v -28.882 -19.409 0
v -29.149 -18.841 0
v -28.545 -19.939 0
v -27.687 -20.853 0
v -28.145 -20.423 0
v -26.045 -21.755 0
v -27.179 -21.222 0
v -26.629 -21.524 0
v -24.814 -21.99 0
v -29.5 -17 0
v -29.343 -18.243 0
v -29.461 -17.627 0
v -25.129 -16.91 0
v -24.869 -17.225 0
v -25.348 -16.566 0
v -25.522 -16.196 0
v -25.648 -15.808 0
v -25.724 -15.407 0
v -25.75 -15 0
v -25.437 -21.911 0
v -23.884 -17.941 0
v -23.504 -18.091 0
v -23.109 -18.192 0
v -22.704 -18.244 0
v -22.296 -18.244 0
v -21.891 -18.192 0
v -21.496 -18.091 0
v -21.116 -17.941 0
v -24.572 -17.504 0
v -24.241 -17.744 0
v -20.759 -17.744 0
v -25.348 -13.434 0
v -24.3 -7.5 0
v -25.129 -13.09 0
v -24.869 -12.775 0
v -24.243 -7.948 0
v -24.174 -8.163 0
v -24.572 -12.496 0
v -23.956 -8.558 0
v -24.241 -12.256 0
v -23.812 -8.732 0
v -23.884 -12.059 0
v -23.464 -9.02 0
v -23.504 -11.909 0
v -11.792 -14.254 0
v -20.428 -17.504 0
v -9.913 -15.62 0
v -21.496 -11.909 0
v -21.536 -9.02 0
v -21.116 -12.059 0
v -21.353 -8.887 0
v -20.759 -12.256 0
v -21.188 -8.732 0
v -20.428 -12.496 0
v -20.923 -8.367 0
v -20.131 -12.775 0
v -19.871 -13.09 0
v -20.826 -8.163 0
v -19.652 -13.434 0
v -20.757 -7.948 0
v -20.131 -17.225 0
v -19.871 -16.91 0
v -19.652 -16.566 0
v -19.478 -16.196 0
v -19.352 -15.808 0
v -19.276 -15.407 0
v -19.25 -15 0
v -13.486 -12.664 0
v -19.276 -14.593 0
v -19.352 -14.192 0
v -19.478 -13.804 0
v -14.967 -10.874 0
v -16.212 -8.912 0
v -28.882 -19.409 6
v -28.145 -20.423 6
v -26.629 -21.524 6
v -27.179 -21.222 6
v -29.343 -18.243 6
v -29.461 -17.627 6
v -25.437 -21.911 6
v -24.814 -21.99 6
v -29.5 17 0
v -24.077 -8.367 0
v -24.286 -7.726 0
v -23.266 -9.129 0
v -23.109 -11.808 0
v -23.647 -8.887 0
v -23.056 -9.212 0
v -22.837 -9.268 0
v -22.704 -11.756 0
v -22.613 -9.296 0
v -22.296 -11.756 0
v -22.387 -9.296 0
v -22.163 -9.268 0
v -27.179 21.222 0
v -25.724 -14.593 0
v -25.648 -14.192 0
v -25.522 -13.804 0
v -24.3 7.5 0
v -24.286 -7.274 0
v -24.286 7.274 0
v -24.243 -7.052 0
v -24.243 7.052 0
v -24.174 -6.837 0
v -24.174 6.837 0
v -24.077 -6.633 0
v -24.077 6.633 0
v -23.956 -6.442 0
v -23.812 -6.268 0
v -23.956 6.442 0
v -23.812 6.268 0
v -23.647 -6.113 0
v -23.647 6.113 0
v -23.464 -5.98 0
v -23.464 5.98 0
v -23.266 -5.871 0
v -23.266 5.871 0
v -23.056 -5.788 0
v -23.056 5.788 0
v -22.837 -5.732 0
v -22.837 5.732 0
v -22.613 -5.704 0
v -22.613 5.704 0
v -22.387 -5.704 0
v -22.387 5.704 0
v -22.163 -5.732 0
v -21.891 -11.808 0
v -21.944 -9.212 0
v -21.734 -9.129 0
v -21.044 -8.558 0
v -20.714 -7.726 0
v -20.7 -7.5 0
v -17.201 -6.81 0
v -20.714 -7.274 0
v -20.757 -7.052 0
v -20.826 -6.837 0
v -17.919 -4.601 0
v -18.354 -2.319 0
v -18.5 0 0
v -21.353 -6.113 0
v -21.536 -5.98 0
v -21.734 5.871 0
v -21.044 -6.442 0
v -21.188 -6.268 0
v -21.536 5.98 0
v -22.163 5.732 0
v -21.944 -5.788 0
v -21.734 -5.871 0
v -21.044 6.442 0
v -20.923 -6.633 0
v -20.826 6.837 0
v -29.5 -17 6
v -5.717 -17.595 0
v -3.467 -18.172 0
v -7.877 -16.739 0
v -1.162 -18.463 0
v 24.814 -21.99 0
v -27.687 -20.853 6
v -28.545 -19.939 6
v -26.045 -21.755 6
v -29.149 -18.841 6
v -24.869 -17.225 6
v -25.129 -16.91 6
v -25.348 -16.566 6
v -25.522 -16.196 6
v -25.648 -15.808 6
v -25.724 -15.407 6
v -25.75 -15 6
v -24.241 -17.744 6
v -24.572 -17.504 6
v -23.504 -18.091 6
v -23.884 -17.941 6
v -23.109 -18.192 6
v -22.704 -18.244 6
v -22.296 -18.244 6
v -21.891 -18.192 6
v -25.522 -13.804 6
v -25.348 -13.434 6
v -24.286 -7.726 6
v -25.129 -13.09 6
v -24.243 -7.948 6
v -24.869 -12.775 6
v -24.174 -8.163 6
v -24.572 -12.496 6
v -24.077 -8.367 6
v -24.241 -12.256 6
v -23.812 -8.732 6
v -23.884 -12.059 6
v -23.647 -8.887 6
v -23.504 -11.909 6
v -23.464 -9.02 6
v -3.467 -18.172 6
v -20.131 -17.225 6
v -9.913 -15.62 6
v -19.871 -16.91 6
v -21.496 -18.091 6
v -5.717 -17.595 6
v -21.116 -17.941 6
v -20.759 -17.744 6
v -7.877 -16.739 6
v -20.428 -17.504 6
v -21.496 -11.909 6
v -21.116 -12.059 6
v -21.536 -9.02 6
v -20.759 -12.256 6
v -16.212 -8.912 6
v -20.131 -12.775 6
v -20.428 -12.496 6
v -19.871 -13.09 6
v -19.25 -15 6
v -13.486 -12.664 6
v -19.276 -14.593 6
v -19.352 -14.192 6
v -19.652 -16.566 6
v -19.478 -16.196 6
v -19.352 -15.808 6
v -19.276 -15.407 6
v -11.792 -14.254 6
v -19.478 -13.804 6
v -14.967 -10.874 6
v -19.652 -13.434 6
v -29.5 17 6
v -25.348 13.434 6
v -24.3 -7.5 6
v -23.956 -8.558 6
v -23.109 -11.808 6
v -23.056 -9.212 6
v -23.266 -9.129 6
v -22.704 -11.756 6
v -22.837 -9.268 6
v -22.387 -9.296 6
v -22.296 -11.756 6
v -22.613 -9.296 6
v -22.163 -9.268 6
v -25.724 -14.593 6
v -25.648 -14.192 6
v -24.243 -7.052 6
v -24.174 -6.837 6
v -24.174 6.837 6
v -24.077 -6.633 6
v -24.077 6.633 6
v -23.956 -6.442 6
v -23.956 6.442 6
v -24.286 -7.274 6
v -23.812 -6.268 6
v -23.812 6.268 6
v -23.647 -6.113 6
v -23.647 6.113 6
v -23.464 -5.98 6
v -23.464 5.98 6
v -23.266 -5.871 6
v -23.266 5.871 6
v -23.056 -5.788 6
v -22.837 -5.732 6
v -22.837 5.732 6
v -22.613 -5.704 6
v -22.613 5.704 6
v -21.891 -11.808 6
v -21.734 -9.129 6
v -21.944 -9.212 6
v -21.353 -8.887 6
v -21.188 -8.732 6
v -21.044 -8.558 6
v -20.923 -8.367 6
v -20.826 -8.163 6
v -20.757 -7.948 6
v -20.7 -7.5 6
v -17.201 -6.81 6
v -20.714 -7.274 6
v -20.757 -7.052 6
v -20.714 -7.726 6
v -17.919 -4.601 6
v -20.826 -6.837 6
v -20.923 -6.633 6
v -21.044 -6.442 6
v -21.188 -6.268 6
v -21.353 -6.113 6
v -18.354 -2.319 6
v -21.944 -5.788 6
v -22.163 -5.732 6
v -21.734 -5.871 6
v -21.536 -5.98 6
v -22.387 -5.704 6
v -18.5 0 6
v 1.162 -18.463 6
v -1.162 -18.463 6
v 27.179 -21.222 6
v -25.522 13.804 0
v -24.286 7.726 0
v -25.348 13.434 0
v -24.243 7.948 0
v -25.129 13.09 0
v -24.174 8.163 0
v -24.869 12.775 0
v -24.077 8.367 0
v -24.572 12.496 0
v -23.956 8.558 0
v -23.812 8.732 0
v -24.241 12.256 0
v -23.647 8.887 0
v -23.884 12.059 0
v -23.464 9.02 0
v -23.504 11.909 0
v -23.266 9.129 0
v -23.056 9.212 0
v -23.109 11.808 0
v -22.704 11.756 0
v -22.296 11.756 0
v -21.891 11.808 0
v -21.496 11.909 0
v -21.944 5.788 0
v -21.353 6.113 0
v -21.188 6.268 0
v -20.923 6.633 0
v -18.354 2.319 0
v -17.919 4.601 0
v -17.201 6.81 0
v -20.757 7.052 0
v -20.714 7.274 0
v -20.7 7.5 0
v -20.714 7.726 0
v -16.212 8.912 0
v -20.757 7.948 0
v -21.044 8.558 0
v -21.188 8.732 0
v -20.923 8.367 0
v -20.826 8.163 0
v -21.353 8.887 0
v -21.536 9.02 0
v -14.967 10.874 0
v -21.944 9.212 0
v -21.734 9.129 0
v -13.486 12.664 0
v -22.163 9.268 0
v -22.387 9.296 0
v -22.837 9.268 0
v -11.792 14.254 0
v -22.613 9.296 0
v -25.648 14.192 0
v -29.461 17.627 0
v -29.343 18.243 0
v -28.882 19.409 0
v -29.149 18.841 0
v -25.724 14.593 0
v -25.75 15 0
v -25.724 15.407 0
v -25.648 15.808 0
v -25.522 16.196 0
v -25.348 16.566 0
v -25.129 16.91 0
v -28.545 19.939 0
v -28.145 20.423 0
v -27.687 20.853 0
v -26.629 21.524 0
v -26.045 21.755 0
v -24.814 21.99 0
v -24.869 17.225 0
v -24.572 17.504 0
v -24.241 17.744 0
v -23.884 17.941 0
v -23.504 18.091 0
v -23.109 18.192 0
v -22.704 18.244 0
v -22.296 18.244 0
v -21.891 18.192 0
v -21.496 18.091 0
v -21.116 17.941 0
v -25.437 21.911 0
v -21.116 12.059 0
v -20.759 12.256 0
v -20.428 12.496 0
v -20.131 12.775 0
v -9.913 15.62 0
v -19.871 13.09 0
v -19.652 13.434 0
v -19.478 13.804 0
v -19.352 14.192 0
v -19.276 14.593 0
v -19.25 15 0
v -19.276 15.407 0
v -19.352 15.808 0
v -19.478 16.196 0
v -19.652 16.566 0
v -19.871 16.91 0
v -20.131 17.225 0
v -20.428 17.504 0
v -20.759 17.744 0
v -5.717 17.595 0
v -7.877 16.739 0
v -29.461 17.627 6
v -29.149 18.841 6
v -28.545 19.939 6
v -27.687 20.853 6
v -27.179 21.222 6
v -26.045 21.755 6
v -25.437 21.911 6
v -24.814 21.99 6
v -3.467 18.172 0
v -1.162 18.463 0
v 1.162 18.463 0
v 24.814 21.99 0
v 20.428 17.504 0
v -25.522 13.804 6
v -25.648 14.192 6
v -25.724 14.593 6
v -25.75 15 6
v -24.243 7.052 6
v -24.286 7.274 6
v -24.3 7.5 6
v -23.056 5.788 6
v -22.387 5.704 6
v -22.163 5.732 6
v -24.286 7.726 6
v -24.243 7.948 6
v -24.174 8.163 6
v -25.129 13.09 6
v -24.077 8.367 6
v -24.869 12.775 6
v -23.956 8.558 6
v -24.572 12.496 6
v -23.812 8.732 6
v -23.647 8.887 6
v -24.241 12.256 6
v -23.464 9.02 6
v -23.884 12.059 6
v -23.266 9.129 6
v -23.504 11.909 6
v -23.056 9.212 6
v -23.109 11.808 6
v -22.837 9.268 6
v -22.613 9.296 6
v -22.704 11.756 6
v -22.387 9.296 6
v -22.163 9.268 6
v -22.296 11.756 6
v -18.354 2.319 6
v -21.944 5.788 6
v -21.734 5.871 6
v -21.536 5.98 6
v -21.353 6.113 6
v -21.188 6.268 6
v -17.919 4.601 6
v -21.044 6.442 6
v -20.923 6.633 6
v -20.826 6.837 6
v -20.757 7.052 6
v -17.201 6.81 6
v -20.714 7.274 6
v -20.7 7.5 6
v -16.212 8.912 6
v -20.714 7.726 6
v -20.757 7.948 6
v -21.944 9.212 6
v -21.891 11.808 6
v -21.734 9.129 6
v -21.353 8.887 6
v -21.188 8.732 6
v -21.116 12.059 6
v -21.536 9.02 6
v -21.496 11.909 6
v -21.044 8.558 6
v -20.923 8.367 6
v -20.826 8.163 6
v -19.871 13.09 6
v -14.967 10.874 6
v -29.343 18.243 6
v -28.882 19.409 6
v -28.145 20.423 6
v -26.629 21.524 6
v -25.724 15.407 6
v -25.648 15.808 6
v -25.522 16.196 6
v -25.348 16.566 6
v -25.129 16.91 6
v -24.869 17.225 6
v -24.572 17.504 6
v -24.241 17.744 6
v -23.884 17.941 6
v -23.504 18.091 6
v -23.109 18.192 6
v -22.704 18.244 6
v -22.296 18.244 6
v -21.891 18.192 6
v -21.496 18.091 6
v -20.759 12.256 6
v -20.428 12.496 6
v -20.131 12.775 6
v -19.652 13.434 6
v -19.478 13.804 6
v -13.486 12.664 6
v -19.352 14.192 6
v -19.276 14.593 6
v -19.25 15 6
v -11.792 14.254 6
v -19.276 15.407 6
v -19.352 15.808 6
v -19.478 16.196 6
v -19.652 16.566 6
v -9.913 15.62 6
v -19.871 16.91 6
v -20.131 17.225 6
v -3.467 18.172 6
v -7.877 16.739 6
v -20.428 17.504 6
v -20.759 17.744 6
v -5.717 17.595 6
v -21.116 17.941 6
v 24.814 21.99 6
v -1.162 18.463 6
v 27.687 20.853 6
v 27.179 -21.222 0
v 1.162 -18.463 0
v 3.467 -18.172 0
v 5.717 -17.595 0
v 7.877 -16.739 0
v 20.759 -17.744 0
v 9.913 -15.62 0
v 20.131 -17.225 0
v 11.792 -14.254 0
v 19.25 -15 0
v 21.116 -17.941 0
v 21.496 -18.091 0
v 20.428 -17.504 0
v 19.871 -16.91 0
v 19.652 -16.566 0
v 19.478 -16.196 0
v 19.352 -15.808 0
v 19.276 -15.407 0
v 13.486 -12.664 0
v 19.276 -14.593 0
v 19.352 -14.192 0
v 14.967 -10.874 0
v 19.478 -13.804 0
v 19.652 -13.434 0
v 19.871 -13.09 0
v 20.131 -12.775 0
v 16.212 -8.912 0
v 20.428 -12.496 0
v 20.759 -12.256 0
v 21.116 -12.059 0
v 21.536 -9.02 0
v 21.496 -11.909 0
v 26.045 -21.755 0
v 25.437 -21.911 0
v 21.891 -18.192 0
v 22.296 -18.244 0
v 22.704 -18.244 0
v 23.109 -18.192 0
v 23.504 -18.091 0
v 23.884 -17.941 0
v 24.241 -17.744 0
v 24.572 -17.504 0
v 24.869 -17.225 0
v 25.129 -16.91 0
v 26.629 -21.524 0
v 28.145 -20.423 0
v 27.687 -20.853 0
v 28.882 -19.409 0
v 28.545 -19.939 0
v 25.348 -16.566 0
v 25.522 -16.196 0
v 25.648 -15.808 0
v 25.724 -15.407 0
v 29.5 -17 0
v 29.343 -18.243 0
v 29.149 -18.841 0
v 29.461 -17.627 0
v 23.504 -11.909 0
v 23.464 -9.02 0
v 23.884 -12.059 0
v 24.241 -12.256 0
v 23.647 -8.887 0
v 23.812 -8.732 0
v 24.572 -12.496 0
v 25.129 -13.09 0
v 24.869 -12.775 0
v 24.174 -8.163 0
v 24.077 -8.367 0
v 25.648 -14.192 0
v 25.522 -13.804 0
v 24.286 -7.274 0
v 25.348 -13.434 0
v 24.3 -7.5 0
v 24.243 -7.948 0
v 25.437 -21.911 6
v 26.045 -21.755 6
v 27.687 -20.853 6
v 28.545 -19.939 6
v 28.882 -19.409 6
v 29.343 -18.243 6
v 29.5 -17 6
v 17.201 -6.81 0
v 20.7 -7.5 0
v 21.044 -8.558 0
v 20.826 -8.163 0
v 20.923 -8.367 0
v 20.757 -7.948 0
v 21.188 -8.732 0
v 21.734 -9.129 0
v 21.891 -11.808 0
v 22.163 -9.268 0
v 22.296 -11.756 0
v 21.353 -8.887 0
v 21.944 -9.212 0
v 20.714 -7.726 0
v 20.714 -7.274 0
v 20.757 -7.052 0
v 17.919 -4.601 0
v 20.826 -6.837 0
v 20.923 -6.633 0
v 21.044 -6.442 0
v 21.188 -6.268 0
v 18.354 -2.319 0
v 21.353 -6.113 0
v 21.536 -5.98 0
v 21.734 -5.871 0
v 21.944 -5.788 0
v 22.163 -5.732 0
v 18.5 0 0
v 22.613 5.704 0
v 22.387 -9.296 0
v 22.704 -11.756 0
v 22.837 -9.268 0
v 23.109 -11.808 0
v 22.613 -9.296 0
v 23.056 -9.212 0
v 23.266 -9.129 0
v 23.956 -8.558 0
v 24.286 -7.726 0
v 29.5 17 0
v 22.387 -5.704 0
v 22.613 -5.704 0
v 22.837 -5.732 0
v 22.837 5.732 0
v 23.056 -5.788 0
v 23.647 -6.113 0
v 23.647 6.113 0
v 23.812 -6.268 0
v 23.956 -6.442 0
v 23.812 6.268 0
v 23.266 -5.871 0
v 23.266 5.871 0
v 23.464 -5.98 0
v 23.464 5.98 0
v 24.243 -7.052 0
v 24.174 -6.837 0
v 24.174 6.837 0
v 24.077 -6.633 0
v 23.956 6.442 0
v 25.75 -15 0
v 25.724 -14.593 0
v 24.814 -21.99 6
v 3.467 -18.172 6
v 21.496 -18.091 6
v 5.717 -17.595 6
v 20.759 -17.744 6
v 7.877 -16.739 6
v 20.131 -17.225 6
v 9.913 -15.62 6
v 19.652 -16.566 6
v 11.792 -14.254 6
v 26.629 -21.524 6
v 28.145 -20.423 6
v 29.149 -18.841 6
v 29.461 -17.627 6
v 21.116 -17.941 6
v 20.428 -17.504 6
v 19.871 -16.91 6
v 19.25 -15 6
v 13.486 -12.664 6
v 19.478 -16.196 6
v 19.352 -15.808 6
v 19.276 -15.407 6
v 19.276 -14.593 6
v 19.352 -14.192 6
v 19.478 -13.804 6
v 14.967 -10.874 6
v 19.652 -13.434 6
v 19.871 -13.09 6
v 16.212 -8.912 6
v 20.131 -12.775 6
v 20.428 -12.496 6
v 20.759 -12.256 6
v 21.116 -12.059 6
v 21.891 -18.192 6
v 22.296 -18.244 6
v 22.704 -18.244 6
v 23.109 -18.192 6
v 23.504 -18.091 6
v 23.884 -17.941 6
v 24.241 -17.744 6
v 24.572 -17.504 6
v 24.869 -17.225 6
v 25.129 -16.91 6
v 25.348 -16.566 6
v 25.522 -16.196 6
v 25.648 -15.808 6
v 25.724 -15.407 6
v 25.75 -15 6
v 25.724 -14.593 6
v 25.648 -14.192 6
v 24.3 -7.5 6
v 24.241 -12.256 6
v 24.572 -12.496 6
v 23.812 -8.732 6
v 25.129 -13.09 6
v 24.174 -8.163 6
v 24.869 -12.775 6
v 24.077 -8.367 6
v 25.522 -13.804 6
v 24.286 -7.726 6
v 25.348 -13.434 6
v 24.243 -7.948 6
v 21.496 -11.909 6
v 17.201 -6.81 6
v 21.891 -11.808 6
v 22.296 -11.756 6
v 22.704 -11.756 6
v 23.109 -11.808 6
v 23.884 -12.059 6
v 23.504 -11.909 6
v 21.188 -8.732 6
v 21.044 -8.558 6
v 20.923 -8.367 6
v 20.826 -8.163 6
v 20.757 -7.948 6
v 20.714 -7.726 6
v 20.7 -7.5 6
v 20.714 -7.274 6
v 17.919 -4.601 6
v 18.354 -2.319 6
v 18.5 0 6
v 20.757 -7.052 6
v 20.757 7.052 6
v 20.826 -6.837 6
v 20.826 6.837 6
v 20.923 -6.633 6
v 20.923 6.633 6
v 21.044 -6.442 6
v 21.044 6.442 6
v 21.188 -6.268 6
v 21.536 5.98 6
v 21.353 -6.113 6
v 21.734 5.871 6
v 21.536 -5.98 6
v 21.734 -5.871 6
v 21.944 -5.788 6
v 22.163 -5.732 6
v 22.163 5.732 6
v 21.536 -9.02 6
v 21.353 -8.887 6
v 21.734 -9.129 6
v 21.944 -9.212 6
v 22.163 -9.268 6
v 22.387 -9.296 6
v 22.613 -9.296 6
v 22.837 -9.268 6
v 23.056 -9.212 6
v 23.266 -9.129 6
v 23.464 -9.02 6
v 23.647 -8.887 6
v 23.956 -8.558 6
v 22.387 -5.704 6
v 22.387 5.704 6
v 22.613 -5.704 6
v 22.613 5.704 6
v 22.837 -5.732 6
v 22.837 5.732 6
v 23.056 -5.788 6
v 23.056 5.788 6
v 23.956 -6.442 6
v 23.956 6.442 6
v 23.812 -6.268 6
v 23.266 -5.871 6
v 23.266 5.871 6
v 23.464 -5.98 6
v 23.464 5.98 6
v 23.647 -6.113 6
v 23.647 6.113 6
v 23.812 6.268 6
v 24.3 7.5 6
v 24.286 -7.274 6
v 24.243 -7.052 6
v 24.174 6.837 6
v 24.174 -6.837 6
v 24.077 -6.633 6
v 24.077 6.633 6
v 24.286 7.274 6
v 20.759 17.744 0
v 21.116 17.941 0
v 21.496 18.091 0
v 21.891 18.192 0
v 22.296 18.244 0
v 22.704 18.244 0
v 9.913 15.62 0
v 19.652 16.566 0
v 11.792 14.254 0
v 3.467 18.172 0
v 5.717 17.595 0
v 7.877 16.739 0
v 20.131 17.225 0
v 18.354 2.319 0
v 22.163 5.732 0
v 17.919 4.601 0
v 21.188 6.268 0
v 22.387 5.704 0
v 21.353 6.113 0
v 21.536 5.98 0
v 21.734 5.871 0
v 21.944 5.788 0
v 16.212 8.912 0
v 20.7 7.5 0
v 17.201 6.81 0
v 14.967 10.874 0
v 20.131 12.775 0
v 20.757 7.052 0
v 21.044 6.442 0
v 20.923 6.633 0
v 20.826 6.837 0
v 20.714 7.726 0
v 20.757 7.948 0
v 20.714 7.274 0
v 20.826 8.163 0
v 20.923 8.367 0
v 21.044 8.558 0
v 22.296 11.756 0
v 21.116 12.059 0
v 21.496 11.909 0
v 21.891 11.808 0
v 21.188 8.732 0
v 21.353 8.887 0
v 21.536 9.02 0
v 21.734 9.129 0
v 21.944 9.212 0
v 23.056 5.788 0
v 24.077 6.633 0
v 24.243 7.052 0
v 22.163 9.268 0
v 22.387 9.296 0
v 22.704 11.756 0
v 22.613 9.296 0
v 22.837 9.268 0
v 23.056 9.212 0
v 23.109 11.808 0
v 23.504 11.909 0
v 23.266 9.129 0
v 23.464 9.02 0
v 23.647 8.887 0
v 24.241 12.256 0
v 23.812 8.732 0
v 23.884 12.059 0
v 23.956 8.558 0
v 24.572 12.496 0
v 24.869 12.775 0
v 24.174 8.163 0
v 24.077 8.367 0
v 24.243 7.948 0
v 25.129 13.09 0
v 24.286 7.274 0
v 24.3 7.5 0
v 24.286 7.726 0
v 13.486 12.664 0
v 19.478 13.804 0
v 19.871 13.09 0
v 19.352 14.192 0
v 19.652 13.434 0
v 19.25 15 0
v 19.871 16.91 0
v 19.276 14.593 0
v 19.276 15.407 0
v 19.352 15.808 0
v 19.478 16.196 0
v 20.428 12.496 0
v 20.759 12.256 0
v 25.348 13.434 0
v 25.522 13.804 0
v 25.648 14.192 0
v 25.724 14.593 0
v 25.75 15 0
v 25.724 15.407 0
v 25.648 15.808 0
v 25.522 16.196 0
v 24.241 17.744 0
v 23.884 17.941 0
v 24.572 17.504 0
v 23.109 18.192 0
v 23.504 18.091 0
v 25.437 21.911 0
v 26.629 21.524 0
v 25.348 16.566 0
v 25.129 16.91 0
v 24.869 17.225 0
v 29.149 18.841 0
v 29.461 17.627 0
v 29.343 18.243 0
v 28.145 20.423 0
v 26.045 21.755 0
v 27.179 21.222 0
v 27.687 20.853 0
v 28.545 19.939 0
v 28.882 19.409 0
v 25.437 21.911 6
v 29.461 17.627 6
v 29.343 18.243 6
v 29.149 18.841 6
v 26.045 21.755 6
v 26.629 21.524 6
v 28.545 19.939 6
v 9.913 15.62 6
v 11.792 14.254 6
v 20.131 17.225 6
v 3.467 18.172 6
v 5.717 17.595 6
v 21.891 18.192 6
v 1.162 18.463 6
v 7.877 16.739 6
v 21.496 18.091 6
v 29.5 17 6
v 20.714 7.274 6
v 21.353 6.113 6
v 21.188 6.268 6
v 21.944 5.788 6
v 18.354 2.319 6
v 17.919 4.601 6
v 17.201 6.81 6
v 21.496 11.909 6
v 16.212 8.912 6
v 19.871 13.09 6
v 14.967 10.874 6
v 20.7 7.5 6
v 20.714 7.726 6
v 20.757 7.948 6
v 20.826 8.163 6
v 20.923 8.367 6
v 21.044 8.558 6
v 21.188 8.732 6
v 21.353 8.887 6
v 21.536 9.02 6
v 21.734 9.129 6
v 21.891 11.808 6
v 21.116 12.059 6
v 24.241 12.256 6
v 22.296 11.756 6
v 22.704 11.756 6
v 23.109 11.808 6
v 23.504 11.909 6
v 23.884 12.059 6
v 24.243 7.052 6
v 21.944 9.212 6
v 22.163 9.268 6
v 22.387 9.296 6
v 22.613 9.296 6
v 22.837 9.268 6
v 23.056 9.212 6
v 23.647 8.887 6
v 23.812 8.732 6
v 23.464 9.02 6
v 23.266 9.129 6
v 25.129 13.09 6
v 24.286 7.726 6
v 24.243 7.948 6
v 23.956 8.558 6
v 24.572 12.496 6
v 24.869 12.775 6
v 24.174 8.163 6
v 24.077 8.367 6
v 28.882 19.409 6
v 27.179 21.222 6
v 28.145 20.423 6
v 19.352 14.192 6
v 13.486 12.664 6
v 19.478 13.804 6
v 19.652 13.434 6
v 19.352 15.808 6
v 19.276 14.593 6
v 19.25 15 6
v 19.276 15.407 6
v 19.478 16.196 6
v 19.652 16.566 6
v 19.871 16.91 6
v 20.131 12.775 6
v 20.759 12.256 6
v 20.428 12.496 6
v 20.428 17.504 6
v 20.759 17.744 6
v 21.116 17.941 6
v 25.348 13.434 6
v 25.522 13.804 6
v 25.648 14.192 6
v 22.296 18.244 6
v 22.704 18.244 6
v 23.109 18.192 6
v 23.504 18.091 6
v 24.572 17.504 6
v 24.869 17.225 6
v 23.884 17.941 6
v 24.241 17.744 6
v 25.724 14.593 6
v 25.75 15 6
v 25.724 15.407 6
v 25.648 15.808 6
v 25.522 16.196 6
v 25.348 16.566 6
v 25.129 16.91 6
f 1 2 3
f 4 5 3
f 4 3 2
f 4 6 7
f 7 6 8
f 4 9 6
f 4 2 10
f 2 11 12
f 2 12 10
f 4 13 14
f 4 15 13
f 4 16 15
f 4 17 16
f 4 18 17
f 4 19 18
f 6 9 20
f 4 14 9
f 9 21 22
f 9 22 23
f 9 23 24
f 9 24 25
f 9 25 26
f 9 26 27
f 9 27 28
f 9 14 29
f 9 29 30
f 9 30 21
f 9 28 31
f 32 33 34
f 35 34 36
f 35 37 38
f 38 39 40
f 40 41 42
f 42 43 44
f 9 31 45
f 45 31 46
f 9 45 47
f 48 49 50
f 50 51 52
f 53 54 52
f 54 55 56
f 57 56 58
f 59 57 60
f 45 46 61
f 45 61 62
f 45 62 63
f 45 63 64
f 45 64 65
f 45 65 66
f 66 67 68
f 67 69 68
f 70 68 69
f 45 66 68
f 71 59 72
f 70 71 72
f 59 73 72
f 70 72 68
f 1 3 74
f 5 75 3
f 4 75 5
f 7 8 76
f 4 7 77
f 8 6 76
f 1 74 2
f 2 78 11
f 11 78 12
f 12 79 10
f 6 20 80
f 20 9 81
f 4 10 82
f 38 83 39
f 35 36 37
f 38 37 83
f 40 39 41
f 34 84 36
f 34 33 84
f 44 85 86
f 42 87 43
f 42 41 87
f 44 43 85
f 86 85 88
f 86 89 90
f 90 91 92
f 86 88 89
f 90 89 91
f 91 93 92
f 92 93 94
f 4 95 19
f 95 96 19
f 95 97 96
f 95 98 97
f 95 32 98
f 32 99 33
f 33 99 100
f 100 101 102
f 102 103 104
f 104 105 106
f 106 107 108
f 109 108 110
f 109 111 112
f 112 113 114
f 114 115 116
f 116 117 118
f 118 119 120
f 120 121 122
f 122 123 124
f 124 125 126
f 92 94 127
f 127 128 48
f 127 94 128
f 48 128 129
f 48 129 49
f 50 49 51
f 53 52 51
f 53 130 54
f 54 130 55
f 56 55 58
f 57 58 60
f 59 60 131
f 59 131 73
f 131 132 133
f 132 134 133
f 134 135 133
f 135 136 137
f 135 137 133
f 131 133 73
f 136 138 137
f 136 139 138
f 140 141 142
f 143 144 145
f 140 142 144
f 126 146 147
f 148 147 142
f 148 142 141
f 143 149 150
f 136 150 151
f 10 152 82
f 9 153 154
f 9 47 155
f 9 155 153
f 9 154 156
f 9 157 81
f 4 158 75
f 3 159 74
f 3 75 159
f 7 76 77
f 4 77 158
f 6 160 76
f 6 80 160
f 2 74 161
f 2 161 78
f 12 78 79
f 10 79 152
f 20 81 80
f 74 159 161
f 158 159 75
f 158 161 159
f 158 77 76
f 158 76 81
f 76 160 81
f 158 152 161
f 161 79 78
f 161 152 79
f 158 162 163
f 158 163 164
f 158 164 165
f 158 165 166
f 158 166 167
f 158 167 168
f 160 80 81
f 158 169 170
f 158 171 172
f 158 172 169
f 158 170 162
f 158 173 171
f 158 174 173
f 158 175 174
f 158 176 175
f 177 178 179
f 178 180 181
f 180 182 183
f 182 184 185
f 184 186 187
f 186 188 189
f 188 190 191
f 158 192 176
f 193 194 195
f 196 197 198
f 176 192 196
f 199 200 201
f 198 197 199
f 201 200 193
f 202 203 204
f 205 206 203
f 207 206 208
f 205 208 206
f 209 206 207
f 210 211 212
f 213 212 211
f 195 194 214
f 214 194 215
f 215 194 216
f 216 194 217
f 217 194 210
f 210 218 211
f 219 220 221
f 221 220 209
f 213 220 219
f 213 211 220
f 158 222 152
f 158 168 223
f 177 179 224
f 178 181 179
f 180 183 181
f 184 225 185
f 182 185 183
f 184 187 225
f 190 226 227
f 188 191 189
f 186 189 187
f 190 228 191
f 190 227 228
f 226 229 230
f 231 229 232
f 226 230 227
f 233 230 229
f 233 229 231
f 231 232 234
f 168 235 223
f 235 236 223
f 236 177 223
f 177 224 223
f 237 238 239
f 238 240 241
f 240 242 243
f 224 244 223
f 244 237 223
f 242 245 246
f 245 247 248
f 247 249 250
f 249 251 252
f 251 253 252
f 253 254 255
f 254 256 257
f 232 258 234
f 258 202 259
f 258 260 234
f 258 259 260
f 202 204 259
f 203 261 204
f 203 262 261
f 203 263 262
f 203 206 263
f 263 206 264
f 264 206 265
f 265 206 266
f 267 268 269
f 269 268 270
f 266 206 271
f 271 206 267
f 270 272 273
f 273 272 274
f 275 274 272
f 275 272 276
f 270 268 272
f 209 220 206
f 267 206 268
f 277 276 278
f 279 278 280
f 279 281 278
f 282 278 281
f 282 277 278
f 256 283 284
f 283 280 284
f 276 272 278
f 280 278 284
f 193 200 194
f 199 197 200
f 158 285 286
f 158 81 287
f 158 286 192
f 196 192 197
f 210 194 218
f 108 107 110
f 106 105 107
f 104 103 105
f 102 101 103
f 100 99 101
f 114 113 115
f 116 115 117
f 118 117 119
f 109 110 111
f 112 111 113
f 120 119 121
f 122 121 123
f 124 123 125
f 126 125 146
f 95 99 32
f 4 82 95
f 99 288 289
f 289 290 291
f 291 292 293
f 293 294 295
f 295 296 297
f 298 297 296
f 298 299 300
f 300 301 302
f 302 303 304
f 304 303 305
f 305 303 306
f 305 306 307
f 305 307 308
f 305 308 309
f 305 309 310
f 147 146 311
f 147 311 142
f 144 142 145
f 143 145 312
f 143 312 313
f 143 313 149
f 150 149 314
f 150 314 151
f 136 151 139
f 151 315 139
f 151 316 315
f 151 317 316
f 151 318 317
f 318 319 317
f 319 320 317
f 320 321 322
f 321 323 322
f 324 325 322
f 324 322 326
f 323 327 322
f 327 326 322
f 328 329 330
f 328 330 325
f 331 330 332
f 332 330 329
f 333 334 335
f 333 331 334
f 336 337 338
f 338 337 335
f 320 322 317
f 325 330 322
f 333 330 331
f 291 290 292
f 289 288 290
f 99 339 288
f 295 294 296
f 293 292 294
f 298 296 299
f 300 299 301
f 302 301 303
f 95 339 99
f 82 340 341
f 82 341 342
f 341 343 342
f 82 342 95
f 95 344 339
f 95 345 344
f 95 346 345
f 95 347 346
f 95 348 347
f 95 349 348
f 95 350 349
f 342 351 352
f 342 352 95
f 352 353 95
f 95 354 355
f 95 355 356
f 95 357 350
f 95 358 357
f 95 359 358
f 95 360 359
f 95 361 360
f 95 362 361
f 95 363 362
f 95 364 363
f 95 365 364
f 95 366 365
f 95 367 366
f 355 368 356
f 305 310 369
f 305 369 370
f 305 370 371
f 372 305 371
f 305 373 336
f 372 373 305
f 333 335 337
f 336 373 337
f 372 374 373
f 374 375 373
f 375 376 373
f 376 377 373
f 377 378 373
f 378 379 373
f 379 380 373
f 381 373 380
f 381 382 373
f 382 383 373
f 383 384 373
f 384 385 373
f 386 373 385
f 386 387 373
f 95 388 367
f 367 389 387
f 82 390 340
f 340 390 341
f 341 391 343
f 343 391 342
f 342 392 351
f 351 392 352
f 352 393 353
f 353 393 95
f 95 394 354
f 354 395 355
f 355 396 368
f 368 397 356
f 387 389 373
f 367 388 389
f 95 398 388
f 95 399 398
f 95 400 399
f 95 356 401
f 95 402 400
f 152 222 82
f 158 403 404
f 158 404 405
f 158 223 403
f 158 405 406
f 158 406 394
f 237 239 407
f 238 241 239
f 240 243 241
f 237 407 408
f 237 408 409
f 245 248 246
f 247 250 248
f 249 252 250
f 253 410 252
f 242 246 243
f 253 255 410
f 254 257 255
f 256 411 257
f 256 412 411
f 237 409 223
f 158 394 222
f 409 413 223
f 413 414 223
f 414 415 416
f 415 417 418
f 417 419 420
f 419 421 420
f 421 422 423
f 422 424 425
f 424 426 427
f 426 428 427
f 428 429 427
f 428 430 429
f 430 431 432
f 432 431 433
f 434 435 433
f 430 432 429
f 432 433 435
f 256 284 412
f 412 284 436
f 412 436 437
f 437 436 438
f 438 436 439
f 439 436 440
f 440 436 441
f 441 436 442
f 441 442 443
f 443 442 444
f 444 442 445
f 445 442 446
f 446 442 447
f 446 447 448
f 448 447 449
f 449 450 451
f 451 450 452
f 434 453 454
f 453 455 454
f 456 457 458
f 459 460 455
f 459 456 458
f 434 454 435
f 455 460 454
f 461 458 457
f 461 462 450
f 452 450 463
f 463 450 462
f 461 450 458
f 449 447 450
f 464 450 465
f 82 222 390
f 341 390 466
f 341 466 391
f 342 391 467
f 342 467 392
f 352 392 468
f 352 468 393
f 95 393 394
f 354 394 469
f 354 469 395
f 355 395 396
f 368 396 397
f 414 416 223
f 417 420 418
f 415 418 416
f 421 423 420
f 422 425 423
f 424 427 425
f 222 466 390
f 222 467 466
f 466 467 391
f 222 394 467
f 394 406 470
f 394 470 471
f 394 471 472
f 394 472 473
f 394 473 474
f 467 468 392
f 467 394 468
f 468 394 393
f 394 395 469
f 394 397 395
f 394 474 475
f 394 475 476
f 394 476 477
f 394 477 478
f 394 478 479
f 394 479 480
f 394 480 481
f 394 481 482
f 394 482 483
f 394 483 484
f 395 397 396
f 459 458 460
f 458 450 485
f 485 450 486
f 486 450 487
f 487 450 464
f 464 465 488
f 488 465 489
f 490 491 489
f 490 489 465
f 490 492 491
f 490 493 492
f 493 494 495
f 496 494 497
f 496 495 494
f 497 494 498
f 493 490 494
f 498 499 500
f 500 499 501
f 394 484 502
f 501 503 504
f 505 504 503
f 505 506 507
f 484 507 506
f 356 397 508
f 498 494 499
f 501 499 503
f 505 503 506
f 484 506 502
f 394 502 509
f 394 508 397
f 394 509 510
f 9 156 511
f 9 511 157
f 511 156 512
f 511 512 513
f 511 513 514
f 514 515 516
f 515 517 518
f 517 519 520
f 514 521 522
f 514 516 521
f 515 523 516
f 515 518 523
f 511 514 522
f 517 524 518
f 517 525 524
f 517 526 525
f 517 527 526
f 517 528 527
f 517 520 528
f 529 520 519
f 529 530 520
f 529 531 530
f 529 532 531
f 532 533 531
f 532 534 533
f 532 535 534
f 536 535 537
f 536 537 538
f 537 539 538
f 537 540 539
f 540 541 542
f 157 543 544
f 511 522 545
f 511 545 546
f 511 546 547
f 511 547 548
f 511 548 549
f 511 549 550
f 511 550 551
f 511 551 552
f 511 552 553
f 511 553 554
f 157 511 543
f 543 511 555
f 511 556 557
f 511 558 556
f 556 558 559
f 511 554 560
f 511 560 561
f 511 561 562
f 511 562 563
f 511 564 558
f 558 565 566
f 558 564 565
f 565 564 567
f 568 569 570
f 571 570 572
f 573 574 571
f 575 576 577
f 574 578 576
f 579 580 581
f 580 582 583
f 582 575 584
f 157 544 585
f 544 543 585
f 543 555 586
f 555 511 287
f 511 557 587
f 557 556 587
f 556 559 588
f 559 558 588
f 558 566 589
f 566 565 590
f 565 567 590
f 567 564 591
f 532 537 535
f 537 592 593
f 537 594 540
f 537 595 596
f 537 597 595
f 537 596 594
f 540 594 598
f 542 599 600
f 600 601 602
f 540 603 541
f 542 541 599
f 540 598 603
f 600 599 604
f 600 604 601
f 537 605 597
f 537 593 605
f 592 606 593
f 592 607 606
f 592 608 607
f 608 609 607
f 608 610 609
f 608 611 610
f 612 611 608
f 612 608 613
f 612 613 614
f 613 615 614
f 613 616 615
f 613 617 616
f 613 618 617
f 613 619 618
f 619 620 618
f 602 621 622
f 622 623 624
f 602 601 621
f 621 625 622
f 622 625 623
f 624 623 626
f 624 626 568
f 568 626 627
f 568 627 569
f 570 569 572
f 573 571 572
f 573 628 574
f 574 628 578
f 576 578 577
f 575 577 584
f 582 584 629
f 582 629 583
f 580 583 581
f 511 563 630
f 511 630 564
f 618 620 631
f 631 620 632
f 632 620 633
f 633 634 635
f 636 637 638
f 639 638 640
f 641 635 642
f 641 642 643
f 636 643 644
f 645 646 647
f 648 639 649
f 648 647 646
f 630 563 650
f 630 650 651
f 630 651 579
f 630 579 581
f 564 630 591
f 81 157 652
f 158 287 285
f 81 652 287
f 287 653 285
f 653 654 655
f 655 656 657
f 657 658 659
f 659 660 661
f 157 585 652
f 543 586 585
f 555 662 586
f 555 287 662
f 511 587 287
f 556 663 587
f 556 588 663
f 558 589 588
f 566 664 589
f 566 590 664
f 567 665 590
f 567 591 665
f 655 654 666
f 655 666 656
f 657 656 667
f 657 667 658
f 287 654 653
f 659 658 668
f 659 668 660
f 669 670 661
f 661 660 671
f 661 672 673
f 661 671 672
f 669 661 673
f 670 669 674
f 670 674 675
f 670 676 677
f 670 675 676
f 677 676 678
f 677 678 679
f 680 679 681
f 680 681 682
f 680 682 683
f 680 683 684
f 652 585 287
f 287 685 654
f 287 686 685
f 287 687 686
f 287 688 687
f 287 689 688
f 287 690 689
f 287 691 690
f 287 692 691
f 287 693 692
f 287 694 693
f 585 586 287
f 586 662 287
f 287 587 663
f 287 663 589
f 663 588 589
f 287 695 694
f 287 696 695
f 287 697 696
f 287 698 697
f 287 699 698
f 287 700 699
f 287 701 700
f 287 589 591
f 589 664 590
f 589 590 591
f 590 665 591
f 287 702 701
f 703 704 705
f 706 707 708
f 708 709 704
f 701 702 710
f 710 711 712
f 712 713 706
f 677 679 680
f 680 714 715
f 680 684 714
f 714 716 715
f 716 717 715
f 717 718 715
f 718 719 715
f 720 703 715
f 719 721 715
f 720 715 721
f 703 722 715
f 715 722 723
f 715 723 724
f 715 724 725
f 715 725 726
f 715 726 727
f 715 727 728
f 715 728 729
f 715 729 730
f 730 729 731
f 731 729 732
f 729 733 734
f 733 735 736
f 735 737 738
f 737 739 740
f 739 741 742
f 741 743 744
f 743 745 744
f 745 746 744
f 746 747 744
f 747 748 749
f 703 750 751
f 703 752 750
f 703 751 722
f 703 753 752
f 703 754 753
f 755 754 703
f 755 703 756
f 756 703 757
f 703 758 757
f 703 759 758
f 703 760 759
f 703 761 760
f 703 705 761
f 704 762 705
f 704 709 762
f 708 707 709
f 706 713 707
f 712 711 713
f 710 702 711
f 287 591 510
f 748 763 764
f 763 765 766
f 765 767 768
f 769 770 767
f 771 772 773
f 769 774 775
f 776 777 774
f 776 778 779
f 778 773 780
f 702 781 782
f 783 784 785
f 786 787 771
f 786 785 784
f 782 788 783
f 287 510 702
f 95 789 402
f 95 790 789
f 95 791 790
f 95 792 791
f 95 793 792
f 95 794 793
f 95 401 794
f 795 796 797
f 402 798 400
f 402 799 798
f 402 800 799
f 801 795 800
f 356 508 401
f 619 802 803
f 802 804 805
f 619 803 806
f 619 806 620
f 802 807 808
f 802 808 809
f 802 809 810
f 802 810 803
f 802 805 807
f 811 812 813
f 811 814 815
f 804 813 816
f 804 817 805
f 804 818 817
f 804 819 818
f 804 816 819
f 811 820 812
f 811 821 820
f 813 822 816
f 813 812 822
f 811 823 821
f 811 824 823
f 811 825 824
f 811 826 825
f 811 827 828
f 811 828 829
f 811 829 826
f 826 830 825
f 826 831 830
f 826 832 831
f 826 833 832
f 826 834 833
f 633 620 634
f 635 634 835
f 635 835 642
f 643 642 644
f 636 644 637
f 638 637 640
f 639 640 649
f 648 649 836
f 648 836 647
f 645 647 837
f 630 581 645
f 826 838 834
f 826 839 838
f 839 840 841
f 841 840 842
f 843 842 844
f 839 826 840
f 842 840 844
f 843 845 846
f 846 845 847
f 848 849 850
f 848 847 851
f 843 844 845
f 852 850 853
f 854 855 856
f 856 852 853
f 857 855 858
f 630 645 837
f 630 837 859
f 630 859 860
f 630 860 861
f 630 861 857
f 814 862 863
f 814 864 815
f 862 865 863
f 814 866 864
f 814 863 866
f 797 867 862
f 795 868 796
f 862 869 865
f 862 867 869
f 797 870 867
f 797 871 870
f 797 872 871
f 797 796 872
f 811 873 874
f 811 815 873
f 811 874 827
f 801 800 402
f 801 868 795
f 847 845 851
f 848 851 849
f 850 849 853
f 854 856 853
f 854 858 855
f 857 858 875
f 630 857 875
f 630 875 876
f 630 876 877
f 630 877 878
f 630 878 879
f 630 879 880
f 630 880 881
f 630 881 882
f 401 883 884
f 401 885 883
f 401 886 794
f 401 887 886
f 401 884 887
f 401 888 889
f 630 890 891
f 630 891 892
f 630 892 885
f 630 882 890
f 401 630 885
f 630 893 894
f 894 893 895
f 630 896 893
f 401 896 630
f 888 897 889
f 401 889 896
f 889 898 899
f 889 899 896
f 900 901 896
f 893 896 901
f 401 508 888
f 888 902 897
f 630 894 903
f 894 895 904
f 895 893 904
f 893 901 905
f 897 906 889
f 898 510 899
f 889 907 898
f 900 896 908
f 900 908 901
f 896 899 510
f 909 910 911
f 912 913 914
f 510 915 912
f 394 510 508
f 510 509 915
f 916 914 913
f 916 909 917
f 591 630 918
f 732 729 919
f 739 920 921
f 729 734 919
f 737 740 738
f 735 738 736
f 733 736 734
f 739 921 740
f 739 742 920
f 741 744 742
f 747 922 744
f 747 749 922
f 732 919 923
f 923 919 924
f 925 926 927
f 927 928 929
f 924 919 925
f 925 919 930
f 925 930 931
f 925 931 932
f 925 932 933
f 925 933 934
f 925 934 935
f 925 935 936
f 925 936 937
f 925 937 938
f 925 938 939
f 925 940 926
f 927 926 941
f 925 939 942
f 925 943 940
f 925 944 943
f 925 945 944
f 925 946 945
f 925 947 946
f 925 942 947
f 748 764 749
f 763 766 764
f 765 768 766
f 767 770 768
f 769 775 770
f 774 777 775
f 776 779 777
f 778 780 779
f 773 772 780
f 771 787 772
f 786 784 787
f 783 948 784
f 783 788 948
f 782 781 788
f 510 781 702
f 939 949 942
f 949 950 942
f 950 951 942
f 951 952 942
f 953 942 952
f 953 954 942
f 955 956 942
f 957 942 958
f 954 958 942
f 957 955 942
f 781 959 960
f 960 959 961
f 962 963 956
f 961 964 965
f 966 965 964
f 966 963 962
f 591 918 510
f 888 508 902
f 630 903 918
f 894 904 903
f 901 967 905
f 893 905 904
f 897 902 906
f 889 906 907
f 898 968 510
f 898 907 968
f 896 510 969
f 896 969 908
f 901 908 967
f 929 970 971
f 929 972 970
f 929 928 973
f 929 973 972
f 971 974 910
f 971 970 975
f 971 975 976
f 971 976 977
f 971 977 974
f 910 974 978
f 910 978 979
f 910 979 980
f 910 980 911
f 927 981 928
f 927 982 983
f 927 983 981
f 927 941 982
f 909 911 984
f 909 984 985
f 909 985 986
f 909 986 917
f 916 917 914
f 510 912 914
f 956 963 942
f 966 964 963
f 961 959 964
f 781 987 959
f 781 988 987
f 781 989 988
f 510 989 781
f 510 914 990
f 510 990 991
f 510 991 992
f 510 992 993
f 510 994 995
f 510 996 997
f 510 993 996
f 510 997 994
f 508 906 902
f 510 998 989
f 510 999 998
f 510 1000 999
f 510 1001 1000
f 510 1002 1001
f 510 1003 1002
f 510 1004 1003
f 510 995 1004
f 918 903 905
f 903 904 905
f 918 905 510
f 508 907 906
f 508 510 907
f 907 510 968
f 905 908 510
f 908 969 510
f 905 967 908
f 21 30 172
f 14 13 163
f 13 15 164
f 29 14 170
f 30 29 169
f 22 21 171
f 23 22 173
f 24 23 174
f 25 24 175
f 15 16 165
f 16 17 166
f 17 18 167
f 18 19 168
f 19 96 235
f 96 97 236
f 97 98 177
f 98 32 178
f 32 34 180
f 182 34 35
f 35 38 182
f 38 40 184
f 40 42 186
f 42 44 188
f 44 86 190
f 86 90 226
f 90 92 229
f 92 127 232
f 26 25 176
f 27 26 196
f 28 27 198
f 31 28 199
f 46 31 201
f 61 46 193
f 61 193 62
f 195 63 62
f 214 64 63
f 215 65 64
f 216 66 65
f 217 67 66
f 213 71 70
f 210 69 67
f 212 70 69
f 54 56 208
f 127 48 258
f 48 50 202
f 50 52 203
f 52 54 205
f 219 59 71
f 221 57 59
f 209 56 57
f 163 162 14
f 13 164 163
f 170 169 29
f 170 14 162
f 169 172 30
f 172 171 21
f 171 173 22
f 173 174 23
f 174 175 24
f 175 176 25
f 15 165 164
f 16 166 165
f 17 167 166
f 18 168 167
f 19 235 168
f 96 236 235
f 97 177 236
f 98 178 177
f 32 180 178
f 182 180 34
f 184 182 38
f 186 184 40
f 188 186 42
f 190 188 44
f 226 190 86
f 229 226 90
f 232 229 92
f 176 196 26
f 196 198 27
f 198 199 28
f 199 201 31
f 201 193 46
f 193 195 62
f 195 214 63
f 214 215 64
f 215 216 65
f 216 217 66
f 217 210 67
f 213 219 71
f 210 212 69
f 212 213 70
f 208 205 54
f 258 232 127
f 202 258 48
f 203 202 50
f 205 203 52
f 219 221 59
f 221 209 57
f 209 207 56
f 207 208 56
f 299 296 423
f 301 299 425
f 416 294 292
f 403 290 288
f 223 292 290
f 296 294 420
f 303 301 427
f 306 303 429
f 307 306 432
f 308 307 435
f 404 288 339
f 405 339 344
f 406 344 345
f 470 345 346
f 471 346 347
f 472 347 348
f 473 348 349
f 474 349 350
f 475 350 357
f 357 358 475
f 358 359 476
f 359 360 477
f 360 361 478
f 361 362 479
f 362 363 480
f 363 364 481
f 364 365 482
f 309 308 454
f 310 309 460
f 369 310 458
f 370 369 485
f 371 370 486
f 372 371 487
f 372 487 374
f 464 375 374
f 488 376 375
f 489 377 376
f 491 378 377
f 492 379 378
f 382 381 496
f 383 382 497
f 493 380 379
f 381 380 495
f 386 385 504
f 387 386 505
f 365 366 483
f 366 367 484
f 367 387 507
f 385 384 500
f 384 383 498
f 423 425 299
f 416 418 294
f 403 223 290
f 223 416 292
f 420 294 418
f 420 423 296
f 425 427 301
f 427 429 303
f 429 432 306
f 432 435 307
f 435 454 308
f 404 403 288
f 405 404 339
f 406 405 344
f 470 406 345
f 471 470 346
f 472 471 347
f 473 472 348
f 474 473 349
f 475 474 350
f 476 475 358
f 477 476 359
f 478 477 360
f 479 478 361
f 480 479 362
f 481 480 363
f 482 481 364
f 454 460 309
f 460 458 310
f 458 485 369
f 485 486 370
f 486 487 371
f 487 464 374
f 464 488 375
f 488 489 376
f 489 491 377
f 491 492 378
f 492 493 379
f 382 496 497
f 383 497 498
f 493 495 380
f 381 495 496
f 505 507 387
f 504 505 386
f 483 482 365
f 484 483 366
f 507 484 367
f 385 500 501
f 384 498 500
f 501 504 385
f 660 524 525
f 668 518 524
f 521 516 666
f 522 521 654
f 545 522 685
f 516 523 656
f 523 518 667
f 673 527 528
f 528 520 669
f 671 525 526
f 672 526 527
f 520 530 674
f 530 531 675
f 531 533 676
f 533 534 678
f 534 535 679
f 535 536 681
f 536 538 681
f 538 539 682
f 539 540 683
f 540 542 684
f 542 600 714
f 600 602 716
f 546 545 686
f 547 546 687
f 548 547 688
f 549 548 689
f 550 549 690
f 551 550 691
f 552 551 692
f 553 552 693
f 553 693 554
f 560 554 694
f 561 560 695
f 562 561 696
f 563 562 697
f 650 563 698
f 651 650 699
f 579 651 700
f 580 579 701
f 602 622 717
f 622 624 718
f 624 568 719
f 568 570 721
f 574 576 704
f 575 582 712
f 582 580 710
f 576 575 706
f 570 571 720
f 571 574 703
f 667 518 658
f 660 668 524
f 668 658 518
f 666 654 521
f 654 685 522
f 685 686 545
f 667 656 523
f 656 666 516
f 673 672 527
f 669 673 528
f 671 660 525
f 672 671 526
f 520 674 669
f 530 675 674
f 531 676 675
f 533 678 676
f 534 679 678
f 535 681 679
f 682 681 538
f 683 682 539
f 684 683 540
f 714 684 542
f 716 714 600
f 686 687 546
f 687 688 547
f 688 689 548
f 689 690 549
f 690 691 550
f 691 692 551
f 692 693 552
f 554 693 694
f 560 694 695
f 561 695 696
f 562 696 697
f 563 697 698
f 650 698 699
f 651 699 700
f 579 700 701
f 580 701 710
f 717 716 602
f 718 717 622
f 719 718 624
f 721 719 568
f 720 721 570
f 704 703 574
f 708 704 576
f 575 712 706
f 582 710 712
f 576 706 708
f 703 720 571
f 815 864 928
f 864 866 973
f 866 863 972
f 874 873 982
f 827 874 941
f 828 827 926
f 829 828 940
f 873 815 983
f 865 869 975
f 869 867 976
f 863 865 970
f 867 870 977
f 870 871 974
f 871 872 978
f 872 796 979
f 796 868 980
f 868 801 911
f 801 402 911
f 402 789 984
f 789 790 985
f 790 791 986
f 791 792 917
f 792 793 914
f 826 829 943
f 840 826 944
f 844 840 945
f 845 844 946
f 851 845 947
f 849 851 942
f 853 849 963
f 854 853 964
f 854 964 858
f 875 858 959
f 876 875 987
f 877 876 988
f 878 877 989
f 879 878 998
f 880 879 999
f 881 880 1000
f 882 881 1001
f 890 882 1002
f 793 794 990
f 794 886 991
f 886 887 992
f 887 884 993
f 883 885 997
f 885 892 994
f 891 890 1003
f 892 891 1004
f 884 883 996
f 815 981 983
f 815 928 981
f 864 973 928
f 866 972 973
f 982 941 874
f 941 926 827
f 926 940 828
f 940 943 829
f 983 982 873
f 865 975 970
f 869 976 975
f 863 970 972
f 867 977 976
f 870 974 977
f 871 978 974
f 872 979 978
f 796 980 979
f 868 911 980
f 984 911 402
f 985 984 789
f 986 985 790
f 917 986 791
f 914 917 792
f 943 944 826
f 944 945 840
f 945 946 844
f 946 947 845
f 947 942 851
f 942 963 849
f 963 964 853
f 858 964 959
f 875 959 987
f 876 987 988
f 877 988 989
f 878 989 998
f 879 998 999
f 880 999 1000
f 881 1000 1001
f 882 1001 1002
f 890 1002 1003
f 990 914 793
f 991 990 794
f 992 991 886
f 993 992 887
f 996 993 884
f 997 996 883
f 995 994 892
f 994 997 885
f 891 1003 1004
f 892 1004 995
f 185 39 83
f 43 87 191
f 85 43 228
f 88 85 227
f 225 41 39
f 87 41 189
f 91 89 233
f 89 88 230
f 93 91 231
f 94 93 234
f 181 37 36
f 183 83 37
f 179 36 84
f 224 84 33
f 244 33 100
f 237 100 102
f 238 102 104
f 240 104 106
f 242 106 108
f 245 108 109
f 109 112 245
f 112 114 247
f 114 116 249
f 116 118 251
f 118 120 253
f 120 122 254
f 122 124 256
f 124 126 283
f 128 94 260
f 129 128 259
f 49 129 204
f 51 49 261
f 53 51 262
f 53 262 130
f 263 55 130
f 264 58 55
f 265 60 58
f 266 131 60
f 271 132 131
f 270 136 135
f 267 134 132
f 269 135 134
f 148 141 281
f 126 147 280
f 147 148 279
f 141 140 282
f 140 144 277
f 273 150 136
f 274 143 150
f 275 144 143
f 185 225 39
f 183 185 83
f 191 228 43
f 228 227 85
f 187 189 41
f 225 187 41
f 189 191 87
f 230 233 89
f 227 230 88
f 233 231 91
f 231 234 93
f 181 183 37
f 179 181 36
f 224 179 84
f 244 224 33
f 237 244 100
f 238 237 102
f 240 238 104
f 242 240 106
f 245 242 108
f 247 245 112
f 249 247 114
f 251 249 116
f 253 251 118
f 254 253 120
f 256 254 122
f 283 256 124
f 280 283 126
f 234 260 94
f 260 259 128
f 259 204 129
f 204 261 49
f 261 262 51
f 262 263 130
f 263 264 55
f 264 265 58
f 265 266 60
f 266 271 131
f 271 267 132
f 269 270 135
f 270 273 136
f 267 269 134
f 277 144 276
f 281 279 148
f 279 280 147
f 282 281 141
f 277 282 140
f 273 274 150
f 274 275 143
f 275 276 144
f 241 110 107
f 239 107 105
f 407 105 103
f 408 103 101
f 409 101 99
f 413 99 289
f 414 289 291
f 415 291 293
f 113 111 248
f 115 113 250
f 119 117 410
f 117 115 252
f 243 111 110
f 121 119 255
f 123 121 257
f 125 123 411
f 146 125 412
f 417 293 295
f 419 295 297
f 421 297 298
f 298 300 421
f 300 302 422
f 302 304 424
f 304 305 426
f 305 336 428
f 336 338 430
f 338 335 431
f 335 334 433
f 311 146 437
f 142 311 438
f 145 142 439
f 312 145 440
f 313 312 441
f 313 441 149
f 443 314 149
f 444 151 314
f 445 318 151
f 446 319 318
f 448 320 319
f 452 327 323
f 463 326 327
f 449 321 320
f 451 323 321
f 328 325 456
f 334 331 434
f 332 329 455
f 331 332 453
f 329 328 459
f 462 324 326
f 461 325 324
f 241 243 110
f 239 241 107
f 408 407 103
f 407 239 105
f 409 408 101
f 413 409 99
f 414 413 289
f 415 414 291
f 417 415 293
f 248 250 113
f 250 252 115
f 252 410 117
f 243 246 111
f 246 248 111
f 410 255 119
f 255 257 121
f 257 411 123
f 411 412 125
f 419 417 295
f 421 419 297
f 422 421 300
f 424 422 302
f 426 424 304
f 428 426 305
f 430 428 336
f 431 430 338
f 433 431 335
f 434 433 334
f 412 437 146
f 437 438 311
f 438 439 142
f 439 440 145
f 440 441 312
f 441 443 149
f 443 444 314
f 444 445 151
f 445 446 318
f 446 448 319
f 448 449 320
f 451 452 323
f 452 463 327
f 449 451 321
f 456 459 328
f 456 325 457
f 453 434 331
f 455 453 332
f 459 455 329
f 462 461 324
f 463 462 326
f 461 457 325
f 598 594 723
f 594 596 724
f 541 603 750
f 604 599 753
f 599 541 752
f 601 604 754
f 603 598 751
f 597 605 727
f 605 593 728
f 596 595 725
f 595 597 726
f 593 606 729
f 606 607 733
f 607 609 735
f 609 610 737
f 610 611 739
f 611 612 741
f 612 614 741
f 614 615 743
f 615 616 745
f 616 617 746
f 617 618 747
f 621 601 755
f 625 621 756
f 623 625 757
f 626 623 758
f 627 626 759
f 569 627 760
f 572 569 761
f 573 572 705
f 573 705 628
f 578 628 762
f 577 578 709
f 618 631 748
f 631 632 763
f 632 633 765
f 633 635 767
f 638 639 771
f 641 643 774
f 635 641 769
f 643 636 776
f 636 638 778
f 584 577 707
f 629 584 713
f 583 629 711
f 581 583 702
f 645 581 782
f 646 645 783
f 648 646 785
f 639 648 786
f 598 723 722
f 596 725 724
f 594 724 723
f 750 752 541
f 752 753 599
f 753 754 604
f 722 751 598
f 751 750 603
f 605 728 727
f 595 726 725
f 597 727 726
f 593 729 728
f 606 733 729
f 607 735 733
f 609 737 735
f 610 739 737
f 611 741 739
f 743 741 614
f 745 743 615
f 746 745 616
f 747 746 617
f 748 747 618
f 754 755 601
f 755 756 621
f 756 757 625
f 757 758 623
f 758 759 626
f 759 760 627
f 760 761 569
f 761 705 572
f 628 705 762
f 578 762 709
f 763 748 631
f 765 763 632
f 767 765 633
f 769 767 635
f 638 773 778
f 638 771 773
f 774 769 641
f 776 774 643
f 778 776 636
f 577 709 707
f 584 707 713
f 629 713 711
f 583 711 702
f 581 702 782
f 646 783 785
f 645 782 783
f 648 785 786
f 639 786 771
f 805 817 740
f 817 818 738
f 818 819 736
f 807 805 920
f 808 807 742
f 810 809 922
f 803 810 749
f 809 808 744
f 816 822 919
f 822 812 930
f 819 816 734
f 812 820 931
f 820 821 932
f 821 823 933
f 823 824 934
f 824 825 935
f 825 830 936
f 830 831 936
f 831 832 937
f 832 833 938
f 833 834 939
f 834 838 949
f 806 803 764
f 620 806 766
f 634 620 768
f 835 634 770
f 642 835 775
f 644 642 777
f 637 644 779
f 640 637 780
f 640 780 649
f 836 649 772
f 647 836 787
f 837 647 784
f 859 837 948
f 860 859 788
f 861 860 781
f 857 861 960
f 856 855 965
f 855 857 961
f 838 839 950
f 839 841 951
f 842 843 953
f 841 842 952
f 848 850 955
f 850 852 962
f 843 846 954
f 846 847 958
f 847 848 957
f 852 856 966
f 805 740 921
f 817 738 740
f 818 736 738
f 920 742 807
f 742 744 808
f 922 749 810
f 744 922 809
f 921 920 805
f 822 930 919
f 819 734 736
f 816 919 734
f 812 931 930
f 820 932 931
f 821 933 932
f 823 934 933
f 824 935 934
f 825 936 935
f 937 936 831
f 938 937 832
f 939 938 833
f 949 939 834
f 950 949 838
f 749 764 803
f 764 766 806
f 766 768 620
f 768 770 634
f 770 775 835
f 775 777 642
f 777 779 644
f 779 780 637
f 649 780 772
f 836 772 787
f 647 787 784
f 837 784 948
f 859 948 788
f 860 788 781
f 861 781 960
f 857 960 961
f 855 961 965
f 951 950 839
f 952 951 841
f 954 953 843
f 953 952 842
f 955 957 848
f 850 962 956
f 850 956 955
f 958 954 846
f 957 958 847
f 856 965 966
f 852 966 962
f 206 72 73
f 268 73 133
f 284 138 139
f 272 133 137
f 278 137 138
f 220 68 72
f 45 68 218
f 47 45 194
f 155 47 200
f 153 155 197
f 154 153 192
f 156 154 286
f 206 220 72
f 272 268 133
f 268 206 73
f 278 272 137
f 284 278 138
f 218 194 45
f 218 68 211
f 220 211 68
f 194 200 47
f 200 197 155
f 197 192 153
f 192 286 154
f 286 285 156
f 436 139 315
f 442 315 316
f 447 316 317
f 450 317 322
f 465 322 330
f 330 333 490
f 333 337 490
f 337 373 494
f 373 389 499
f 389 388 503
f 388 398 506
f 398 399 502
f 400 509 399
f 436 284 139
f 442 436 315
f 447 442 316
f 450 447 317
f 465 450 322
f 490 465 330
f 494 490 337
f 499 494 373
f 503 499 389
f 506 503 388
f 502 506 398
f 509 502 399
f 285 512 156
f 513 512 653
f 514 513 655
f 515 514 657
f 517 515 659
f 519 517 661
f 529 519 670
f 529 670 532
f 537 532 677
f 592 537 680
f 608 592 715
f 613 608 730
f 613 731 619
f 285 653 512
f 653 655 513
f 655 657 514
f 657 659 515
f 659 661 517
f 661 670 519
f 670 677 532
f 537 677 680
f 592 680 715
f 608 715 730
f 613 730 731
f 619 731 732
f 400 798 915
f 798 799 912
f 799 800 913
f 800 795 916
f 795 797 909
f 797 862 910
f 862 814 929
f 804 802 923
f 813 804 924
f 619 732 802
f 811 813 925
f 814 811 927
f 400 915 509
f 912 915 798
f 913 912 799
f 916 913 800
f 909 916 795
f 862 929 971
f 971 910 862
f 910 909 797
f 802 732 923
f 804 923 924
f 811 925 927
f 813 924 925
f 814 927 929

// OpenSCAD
$fn = 50;

difference() {
	union() {
		hull() {
			translate(v = [-24.5, 17.0, 0]) {
				cylinder(h = 6, r = 5);
			}
			translate(v = [24.5, 17.0, 0]) {
				cylinder(h = 6, r = 5);
			}
			translate(v = [-24.5, -17.0, 0]) {
				cylinder(h = 6, r = 5);
			}
			translate(v = [24.5, -17.0, 0]) {
				cylinder(h = 6, r = 5);
			}
		}
	}
	union() {
		translate(v = [-22.5, -15.0, 0]) {
			cylinder(h = 6, r = 3.25);
		}
		translate(v = [-22.5, 15.0, 0]) {
			cylinder(h = 6, r = 3.25);
		}
		translate(v = [22.5, -15.0, 0]) {
			cylinder(h = 6, r = 3.25);
		}
		translate(v = [22.5, 15.0, 0]) {
			cylinder(h = 6, r = 3.25);
		}
		translate(v = [-22.5, -7.5, 0]) {
			cylinder(h = 6, r = 1.8);
		}
		translate(v = [-22.5, 7.5, 0]) {
			cylinder(h = 6, r = 1.8);
		}
		translate(v = [22.5, -7.5, 0]) {
			cylinder(h = 6, r = 1.8);
		}
		translate(v = [22.5, 7.5, 0]) {
			cylinder(h = 6, r = 1.8);
		}
		cylinder(h = 6, r = 18.5);
	}
}
